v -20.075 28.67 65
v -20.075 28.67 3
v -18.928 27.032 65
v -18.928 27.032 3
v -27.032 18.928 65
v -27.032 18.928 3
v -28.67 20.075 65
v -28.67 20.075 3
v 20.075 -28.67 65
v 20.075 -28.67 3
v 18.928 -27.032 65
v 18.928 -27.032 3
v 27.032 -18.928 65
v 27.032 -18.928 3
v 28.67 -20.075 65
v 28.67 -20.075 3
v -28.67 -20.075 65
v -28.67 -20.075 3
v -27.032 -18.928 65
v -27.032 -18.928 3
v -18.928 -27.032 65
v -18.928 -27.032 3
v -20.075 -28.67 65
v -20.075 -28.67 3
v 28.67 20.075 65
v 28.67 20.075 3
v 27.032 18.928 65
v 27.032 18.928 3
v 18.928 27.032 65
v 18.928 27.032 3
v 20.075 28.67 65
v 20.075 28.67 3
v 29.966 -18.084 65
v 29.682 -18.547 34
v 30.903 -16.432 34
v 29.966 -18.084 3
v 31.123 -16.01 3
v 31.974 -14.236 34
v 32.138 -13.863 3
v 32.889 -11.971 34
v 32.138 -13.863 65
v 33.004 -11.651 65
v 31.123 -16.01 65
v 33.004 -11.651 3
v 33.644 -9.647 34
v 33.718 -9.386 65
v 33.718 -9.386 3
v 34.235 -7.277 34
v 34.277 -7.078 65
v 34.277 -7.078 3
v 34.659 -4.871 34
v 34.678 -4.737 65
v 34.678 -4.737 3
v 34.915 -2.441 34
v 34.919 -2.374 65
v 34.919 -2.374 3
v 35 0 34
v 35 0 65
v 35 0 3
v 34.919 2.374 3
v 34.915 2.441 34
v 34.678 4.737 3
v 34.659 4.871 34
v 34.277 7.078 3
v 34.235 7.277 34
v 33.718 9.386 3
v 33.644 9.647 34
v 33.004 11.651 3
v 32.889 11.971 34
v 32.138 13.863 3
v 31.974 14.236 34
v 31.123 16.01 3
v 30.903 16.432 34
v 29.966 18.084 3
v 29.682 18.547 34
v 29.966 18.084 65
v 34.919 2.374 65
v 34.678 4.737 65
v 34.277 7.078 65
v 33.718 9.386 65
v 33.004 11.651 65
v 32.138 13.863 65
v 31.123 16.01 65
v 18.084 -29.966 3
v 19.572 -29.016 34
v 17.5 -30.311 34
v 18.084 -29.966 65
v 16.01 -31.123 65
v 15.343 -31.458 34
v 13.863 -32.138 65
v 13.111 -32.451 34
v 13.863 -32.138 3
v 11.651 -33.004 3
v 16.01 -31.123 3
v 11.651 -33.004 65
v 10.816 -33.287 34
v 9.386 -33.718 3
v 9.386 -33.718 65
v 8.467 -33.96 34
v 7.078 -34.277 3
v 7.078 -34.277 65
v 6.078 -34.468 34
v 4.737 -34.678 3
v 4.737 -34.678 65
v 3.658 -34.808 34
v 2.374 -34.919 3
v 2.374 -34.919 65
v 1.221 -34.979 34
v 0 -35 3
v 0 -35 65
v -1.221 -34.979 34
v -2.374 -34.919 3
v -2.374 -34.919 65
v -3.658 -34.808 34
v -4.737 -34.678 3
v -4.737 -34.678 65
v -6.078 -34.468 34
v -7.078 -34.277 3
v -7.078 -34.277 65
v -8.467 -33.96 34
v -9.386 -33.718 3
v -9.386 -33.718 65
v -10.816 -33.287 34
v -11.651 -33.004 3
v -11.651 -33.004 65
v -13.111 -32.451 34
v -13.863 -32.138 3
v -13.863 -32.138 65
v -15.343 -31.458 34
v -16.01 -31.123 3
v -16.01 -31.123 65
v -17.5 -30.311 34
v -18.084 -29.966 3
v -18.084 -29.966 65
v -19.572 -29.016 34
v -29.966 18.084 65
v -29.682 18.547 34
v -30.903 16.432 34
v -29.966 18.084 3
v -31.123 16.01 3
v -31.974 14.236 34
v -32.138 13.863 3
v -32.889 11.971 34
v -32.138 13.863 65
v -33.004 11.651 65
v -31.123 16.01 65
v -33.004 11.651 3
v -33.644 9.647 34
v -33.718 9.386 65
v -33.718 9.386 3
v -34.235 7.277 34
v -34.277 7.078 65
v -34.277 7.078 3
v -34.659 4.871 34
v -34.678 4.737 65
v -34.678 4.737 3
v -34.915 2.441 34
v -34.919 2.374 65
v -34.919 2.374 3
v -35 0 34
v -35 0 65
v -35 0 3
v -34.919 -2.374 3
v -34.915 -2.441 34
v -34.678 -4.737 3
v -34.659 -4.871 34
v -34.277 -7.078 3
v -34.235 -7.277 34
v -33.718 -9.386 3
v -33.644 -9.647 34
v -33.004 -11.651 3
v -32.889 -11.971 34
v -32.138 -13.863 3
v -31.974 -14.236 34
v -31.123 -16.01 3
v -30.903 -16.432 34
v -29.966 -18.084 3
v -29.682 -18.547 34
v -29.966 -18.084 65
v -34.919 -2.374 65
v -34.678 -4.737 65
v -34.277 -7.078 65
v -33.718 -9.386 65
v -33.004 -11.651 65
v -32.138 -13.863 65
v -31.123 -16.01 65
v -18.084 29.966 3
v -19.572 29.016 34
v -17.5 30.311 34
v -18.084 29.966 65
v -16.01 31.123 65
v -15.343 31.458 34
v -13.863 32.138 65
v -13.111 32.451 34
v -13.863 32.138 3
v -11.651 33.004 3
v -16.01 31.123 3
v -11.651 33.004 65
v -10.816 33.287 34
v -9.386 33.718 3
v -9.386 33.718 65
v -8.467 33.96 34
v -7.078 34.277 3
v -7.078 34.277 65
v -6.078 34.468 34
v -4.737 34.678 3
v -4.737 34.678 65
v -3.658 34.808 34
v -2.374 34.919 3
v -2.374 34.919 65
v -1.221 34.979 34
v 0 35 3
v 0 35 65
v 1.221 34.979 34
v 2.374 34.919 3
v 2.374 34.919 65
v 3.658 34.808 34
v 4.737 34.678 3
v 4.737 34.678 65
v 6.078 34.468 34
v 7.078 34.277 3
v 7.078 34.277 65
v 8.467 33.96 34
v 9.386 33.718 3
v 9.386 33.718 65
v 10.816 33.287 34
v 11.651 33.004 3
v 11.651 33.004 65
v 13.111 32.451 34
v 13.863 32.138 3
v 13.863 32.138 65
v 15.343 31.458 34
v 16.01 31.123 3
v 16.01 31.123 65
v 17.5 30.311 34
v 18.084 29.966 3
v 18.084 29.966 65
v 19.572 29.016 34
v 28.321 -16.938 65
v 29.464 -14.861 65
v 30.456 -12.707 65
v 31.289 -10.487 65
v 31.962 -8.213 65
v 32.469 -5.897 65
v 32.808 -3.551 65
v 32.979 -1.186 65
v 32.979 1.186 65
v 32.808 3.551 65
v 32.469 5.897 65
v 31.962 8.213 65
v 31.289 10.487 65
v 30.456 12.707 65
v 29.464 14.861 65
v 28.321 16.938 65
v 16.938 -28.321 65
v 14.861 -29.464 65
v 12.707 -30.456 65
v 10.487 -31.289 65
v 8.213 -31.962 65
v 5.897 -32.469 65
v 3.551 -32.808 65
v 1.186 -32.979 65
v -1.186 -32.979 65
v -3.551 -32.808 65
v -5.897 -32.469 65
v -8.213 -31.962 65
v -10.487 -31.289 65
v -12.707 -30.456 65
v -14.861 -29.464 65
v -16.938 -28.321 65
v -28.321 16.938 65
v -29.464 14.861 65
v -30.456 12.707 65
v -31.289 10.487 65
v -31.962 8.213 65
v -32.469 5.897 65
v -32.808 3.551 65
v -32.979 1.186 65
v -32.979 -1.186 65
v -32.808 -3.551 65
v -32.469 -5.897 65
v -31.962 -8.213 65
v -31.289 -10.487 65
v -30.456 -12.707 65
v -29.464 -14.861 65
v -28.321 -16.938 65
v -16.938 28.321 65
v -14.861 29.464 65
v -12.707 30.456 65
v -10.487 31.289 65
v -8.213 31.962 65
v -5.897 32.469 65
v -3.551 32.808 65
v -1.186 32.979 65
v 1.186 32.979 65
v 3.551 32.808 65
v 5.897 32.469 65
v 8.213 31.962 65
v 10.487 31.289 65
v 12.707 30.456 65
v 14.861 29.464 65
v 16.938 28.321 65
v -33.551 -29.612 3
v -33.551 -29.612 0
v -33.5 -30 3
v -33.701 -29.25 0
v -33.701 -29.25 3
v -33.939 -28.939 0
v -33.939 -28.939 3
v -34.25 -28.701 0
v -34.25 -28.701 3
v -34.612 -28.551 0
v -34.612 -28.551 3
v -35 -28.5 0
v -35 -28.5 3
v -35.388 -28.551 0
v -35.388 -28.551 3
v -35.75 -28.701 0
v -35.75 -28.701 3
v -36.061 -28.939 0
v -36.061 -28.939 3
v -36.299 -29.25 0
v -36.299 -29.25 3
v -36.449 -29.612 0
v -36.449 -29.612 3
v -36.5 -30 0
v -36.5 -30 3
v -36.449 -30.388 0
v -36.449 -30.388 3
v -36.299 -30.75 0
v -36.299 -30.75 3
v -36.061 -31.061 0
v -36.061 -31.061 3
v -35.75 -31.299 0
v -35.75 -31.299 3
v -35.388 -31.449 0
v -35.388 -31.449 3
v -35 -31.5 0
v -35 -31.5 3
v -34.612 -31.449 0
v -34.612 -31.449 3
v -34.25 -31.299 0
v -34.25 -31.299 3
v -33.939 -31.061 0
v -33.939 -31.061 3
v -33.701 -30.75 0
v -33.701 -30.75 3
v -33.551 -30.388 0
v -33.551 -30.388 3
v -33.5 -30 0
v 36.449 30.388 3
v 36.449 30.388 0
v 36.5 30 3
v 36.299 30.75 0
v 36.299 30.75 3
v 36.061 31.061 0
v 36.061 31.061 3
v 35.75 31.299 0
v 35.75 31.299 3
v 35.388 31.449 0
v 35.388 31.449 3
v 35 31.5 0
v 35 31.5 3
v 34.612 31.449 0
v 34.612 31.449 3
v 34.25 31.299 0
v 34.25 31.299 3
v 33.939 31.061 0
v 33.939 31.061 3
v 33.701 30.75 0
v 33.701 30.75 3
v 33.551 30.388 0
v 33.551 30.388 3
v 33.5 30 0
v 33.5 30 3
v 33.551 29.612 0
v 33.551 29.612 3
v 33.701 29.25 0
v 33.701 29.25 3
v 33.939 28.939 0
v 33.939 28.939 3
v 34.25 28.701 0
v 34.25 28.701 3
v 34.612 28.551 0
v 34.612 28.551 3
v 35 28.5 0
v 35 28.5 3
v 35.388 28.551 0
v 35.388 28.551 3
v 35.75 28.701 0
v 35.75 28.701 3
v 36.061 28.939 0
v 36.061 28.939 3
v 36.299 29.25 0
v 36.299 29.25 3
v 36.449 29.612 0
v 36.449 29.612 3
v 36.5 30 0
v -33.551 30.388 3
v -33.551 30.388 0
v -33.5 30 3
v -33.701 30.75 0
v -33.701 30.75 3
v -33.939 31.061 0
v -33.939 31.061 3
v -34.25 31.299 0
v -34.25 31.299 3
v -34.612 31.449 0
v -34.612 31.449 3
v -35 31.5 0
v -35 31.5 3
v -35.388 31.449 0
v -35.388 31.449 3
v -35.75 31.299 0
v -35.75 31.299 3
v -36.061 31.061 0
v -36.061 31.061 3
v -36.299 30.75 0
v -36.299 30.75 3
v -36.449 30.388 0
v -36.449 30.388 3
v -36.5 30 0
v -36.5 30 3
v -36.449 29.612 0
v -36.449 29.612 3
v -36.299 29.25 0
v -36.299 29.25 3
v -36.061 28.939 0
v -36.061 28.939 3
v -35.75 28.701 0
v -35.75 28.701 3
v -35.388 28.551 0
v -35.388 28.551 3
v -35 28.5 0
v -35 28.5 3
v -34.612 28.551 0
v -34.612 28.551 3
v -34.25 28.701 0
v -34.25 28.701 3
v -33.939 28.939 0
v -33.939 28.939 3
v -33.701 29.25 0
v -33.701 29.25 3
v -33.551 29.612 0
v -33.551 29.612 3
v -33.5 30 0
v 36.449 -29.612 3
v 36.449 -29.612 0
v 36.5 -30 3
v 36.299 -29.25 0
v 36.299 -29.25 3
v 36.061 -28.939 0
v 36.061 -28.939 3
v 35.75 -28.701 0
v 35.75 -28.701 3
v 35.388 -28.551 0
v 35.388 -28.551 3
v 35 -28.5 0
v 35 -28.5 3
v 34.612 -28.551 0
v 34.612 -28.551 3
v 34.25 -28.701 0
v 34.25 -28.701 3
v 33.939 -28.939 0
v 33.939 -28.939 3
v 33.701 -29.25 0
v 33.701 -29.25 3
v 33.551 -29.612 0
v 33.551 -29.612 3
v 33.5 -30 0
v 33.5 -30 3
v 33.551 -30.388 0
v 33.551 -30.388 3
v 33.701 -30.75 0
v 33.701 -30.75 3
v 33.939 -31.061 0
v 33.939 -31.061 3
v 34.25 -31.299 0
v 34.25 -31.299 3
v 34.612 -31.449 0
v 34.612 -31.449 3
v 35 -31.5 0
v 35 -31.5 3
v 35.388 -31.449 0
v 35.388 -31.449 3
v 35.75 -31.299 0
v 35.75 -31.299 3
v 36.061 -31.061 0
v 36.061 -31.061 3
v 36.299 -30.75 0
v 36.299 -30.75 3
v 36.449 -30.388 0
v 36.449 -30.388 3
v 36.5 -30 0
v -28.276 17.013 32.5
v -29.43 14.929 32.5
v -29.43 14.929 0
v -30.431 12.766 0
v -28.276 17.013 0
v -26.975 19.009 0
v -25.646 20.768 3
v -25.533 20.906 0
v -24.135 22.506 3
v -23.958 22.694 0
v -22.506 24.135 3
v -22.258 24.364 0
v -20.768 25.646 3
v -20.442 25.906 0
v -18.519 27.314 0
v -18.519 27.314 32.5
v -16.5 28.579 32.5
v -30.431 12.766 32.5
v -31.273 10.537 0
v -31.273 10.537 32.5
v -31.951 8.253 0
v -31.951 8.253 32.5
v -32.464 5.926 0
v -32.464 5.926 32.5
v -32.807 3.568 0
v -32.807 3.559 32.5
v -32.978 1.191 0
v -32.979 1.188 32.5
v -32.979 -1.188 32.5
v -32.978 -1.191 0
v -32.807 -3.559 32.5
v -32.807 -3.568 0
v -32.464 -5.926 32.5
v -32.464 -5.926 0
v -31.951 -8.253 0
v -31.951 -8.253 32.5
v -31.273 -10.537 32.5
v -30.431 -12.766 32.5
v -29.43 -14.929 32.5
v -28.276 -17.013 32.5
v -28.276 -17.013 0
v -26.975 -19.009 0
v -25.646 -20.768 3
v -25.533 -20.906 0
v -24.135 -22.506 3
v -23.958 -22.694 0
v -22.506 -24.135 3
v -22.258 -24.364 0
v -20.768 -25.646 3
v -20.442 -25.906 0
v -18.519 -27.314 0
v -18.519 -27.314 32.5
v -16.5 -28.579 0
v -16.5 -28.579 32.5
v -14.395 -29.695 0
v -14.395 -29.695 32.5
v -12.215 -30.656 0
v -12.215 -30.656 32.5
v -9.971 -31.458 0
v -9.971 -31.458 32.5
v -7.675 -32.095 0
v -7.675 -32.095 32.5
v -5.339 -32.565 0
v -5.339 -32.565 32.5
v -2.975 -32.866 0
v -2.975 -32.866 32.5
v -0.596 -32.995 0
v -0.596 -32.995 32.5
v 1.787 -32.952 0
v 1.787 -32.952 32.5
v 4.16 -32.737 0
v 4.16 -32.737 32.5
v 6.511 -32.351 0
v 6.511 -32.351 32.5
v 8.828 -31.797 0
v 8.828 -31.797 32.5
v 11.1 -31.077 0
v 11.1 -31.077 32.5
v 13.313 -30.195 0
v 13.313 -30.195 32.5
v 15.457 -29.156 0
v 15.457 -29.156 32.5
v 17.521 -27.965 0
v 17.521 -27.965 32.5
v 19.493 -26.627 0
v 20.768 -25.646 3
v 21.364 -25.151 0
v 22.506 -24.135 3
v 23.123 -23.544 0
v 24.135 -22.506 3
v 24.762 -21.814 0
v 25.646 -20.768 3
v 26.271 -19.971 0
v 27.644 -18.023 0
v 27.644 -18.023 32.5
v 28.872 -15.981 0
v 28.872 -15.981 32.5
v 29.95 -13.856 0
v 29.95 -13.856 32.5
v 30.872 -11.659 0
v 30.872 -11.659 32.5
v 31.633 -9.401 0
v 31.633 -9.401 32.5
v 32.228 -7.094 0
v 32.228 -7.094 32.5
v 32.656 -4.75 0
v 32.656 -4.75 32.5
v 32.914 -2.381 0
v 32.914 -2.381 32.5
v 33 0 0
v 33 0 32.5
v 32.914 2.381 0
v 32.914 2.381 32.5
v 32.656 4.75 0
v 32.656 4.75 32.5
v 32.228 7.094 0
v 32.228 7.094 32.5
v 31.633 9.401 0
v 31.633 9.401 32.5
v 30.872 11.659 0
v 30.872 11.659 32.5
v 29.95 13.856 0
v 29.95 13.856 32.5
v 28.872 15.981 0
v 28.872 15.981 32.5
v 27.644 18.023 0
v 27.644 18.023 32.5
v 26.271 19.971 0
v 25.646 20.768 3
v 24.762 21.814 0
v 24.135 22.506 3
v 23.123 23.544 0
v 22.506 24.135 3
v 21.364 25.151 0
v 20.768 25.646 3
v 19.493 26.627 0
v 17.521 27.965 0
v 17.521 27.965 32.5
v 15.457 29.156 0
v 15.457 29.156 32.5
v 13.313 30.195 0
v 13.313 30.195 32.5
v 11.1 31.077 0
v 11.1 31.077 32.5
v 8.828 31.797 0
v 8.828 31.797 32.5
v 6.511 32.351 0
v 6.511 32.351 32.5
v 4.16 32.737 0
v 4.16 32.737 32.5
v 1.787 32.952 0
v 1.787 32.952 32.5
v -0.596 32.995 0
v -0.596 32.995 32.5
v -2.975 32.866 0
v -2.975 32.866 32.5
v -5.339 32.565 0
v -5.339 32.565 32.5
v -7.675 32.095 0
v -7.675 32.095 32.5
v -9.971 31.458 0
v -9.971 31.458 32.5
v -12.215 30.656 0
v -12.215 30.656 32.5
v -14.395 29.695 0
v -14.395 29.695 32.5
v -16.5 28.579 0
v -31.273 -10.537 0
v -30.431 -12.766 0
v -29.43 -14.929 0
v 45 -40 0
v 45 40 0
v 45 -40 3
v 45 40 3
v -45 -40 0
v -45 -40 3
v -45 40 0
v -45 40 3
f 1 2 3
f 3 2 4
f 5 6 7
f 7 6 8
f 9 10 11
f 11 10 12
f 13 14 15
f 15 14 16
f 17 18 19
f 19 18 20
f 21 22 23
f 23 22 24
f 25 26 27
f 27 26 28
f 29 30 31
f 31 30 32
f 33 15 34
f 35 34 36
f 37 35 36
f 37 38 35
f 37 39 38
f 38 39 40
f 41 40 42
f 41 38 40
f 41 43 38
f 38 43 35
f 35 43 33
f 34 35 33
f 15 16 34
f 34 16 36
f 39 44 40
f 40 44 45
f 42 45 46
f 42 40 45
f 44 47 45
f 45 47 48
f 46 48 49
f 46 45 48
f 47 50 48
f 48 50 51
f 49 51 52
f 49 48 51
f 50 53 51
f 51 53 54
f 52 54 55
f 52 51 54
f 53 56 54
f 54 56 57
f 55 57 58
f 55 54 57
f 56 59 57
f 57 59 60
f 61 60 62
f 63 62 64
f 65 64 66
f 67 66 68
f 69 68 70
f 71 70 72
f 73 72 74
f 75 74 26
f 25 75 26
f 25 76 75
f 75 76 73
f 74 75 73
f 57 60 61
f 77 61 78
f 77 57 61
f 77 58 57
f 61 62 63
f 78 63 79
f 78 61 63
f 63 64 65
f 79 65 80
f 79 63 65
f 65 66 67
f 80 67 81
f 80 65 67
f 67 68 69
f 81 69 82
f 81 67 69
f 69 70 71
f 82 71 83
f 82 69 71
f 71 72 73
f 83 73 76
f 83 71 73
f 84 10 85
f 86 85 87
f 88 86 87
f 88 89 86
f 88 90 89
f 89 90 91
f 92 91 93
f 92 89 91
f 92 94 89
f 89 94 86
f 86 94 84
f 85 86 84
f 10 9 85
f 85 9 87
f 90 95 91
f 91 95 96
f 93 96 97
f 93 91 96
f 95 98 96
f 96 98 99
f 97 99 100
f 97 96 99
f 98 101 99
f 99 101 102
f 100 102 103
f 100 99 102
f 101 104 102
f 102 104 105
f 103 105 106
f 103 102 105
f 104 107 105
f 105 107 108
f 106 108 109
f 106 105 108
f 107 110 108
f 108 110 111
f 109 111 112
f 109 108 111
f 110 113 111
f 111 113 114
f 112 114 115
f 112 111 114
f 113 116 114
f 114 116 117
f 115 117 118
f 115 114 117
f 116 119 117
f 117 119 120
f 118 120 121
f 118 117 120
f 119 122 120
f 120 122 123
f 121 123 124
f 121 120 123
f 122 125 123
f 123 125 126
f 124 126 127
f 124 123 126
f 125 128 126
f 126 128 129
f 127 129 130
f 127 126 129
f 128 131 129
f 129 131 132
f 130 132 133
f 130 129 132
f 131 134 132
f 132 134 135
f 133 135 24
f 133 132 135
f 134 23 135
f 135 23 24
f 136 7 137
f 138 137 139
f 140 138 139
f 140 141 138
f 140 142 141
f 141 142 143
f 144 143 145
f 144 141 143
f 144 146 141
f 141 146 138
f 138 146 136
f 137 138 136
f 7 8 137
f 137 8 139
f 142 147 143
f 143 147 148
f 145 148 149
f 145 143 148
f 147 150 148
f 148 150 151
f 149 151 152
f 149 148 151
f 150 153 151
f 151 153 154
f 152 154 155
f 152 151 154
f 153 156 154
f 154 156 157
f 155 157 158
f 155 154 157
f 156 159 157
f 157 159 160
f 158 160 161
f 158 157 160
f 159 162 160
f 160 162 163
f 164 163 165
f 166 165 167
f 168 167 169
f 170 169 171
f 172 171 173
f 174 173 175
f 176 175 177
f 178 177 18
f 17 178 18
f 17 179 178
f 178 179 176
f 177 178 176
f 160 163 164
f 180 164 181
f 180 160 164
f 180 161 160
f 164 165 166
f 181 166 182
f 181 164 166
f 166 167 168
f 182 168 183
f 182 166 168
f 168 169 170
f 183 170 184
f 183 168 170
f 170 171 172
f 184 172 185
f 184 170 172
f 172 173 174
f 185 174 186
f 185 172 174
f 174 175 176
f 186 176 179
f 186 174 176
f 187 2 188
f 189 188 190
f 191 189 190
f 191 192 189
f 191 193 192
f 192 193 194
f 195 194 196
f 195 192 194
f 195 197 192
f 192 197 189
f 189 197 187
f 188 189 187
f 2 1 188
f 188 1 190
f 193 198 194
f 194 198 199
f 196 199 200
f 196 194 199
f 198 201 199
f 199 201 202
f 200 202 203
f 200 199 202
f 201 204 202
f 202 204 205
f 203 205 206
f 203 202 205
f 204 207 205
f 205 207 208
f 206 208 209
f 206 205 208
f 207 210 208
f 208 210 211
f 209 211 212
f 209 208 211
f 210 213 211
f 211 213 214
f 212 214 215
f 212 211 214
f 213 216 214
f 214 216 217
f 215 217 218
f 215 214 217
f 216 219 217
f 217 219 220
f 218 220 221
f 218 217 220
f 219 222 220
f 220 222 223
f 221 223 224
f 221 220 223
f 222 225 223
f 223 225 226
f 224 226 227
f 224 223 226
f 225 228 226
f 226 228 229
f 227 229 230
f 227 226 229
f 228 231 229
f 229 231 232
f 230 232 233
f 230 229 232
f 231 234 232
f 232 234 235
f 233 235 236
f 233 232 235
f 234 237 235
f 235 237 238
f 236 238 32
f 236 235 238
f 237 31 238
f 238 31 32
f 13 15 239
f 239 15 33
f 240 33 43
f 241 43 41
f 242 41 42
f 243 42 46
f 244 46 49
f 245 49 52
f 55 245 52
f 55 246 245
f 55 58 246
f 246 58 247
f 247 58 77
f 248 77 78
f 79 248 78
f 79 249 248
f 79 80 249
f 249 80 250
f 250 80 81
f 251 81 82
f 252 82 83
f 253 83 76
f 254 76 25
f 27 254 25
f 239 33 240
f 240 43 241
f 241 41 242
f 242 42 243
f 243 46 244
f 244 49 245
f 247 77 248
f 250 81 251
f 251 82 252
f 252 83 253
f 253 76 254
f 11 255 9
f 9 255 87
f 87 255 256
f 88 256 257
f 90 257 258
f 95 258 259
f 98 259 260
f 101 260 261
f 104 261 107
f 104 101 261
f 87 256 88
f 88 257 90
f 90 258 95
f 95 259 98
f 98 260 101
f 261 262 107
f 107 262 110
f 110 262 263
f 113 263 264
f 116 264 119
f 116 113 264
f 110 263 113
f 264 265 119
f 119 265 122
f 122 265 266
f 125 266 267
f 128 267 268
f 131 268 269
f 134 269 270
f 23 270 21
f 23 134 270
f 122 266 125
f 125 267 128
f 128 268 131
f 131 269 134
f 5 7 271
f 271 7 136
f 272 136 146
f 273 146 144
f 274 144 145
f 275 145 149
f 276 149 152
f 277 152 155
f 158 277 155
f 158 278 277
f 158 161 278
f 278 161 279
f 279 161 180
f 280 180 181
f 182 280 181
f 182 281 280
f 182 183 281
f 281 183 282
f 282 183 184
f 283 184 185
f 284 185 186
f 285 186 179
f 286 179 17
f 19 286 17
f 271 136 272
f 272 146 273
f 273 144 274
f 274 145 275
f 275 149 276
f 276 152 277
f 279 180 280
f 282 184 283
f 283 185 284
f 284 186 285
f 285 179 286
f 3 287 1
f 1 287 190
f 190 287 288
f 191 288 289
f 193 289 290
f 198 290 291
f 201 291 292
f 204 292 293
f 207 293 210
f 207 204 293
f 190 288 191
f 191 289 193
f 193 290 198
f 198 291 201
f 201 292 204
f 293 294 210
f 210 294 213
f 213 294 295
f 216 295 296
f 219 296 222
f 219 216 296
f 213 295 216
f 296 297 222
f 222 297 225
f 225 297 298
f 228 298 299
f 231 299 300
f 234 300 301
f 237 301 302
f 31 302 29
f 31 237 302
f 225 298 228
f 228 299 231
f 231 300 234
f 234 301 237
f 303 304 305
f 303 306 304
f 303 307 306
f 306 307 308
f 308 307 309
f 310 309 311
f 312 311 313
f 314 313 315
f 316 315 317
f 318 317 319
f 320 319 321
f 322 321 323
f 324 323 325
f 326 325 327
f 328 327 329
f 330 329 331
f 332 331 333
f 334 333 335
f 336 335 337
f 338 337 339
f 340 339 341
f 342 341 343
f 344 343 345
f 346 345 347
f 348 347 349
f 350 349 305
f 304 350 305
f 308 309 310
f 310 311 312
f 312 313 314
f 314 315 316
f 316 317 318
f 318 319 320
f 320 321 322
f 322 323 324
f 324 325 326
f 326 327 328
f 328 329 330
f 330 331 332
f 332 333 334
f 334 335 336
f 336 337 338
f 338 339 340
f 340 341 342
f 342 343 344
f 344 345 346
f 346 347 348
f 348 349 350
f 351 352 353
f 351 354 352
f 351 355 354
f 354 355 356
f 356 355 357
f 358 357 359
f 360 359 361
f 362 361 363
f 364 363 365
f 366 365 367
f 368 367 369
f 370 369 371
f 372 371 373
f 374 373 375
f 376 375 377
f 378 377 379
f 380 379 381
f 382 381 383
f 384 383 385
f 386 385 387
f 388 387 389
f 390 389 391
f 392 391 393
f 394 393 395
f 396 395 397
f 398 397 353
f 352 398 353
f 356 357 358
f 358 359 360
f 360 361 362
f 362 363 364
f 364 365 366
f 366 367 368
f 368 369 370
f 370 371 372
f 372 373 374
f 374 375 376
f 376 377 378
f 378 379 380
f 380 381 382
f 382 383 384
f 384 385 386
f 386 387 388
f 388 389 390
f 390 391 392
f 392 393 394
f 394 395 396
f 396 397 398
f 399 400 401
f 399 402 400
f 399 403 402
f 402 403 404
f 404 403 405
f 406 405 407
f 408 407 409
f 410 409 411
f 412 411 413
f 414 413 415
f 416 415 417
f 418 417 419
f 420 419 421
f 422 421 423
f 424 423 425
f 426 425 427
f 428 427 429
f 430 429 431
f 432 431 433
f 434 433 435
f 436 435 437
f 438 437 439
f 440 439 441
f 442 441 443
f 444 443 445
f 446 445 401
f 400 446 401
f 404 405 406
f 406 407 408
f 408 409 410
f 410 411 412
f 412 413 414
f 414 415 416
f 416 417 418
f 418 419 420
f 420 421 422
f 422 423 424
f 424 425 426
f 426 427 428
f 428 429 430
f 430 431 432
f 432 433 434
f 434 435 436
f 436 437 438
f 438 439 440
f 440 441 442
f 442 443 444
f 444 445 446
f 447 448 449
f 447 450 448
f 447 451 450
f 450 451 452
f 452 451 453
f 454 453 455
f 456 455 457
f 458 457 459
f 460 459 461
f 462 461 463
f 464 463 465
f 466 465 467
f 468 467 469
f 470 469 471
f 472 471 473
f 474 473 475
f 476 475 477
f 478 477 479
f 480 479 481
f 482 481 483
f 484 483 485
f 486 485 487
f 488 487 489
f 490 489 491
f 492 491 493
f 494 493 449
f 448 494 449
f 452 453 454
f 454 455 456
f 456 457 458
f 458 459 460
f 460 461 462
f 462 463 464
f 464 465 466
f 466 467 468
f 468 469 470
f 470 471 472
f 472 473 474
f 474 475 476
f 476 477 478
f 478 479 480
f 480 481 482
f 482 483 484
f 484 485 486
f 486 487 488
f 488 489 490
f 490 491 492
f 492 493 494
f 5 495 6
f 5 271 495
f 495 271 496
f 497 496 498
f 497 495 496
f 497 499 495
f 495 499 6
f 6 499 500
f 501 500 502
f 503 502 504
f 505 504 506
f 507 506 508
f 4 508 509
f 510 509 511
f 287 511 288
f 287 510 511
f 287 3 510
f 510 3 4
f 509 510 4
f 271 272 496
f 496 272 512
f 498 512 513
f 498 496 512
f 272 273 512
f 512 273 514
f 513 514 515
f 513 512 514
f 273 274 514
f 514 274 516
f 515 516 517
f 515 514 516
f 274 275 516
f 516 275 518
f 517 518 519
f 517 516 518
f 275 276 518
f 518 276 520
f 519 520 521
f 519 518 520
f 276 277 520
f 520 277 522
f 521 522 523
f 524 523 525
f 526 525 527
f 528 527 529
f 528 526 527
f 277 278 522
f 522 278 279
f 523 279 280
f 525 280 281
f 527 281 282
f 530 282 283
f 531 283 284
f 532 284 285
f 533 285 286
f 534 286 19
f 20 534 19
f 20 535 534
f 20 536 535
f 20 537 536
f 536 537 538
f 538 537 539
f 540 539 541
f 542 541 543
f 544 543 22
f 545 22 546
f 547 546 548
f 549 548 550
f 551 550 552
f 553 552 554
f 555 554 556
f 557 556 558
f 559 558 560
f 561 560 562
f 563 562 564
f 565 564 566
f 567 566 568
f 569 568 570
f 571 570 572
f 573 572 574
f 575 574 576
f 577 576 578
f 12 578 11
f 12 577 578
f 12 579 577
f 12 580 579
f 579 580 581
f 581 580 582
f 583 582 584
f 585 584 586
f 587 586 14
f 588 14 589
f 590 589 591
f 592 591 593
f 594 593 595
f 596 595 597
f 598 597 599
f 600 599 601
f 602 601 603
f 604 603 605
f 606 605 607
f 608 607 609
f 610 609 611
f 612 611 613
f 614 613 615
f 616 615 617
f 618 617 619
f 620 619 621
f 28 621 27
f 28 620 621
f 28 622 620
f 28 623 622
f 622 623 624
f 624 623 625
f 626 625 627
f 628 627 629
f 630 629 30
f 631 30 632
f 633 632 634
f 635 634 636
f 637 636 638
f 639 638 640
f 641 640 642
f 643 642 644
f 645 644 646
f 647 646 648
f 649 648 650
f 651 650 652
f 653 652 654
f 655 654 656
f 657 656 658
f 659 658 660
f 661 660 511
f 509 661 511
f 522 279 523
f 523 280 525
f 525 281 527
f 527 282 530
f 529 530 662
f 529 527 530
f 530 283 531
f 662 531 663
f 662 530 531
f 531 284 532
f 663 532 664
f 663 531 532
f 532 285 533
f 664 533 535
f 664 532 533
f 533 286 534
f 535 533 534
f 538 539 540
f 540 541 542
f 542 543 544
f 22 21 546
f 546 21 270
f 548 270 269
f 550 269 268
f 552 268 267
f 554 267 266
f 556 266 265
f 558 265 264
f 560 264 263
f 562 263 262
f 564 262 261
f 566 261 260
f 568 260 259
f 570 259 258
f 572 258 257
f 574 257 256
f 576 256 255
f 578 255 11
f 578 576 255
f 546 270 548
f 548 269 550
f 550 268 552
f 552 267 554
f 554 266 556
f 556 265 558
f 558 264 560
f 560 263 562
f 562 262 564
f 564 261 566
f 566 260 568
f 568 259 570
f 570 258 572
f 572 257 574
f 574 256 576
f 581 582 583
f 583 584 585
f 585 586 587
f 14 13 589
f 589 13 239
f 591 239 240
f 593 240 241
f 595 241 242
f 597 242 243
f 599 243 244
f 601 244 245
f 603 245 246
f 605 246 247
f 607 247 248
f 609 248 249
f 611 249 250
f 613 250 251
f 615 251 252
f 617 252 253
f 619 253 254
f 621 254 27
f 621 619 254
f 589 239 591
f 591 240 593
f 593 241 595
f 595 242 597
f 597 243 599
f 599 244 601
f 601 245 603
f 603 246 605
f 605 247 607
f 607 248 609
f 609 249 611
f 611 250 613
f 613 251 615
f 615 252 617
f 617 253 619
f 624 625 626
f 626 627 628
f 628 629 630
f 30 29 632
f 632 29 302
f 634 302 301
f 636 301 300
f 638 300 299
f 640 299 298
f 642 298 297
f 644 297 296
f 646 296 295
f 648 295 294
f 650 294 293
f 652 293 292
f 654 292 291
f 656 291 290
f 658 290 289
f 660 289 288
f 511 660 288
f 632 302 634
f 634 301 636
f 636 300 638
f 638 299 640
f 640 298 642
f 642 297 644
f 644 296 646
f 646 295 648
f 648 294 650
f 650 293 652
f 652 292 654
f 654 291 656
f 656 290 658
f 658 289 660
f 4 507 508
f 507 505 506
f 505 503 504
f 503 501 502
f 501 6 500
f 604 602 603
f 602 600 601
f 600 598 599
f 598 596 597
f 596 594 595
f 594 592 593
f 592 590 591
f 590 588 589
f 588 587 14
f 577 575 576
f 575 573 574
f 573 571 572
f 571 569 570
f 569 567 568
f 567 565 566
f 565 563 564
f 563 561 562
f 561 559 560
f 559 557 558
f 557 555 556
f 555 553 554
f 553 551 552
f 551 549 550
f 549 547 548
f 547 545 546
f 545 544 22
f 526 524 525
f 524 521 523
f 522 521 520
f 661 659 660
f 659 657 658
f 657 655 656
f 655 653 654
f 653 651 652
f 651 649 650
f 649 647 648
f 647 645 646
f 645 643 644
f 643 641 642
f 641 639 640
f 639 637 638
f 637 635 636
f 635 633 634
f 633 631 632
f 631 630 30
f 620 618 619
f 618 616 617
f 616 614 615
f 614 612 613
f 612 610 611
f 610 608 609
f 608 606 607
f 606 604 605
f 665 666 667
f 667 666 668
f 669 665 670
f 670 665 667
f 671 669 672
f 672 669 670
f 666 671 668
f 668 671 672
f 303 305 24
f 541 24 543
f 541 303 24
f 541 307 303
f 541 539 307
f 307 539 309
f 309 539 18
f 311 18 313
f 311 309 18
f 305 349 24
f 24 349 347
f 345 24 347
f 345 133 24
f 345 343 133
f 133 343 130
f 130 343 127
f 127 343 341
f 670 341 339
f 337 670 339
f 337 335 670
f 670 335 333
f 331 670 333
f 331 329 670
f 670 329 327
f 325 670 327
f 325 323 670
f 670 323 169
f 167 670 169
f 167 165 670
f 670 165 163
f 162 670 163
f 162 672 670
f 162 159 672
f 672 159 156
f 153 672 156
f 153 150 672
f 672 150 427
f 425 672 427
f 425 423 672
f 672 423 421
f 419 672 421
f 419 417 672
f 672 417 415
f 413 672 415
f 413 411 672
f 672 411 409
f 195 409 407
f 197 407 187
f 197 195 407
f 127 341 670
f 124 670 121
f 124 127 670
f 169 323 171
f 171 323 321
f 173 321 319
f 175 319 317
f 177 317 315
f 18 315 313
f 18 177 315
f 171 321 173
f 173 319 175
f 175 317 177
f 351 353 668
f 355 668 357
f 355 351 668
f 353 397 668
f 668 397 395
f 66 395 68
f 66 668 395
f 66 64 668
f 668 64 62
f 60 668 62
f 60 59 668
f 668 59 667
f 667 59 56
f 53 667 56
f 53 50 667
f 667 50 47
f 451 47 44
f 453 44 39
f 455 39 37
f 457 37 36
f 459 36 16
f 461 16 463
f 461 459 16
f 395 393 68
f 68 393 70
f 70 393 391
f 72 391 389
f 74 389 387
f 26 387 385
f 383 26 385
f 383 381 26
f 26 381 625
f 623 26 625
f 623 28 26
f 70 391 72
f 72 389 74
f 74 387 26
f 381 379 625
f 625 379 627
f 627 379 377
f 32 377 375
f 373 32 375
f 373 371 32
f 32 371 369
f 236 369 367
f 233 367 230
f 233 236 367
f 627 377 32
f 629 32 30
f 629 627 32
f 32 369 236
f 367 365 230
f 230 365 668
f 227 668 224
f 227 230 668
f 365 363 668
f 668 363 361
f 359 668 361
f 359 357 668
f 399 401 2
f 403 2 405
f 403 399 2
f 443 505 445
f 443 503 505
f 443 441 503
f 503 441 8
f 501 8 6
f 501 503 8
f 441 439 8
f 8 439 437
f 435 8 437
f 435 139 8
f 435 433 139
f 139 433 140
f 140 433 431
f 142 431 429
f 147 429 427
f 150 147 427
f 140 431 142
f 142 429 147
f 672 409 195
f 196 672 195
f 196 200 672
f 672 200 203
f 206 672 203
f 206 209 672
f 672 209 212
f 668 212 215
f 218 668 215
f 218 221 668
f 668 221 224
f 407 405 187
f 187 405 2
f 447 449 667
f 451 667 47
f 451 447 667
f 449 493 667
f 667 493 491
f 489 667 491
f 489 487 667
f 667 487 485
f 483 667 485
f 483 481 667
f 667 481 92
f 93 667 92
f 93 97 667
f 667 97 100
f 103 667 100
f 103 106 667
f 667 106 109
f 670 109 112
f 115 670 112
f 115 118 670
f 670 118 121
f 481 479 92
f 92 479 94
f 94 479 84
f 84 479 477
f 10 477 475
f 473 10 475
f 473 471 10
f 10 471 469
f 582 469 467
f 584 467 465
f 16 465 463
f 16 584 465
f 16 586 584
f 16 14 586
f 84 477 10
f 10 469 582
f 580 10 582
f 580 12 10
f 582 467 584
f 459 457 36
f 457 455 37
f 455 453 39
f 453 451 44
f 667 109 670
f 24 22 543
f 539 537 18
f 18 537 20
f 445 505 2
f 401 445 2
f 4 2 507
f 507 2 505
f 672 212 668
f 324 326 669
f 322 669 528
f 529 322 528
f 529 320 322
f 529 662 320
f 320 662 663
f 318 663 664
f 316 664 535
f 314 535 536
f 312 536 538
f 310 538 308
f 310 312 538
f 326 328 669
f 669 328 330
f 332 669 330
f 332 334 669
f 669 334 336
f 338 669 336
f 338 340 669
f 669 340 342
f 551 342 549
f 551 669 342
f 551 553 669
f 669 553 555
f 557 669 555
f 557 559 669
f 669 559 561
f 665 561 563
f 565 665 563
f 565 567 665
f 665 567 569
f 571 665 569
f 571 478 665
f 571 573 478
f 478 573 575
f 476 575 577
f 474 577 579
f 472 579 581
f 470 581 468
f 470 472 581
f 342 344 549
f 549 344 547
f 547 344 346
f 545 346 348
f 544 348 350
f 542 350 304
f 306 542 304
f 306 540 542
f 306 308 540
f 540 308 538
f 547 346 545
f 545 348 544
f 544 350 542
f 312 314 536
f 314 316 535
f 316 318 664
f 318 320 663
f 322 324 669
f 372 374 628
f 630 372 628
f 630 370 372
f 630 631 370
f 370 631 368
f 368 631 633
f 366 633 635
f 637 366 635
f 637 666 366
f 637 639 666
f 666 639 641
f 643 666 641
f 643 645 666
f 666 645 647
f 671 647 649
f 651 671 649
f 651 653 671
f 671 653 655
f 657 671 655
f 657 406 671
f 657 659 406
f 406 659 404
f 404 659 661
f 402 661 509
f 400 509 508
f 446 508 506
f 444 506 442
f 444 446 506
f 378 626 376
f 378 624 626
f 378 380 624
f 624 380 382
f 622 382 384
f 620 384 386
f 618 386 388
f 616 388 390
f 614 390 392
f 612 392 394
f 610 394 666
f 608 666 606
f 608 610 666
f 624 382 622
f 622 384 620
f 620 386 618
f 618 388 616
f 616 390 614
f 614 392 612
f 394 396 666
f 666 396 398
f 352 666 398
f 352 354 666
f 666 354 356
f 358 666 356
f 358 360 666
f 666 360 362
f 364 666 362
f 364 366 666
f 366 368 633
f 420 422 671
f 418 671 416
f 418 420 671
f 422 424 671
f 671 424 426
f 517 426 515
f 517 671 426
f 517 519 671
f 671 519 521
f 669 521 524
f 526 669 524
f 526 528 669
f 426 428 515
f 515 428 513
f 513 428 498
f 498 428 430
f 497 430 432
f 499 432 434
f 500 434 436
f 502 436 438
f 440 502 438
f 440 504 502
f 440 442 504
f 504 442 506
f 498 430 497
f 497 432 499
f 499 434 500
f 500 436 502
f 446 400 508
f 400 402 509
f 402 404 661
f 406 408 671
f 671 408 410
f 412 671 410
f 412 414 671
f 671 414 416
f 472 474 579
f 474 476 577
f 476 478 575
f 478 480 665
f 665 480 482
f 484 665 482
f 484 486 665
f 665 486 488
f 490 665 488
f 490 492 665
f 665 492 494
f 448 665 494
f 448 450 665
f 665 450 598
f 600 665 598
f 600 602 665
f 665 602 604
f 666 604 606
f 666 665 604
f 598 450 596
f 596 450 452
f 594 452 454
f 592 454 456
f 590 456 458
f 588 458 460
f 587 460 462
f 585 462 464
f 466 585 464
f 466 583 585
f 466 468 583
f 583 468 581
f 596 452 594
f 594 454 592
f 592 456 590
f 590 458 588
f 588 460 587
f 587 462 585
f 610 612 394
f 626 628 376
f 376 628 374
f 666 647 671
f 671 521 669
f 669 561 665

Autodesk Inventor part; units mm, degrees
ref_plane "YZ Plane" through (0, 0, 0) normal (1, 0, 0) x (0, 1, 0)
ref_plane "XZ Plane" through (0, 0, 0) normal (0, 1, 0) x (-1, 0, 0)
ref_plane "XY Plane" through (0, 0, 0) normal (0, 0, 1) x (1, 0, 0)
sketch "スケッチ1" plane through (0, 0, 0) normal (0, 0, 1) x (1, 0, 0)
  circle A0 centre (0, 0) radius 35
  circle A1 centre (0, 0) radius 33
  line L0 (-45, 40) -> (45, 40)
  line L1 (45, 40) -> (45, -40)
  line L2 (45, -40) -> (-45, -40)
  line L3 (-45, -40) -> (-45, 40)
  line L4 (-45, 40) -> (45, -40) construction
  line L5 (45, 40) -> (-45, -40) construction
  dimension "d0" = 70
  dimension "d1" = 66
  dimension "d2" = 90
  dimension "d3" = 80
extrude "押し出し1" add sketch "スケッチ1" along normal blind 3 contours L0 L1 L2 L3
sketch "スケッチ2" plane through (0, 0, 3) normal (0, 0, 1) x (1, 0, 0)
  circle A0 centre (0, 0) radius 35 projected
  circle A1 centre (0, 0) radius 35
  circle A2 centre (0, 0) radius 33
  dimension "d6" = 66
extrude "押し出し2" add sketch "スケッチ2" along normal blind 3 and the other way blind 3
sketch "スケッチ3" plane through (0, 0, 6) normal (0, 0, 1) x (1, 0, 0)
  circle A0 centre (0, 0) radius 33 projected
  circle A1 centre (0, 0) radius 35 projected
extrude "押し出し3" add sketch "スケッチ3" along normal blind 59
sketch "スケッチ4" plane through (0, 0, 65) normal (0, 0, 1) x (1, 0, 0)
  circle A0 centre (0, 0) radius 33 projected
  circle A1 centre (0, 0) radius 35 projected
sketch "スケッチ5" plane through (0, 0, 0) normal (0, 0, -1) x (-1, 0, 0)
  line L0 (-45, 40) -> (-35, 40)
  line L1 (-35, 40) -> (-35, 30)
  line L2 (-35, 30) -> (-45, 30)
  line L3 (-45, 30) -> (-45, 40)
  line L4 (-45, -40) -> (-35, -40)
  line L5 (-35, -40) -> (-35, -30)
  line L6 (-35, -30) -> (-45, -30)
  line L7 (-45, -30) -> (-45, -40)
  line L8 (45, -40) -> (35, -40)
  line L9 (35, -40) -> (35, -30)
  line L10 (35, -30) -> (45, -30)
  line L11 (45, -30) -> (45, -40)
  line L12 (45, 40) -> (35, 40)
  line L13 (35, 40) -> (35, 30)
  line L14 (35, 30) -> (45, 30)
  line L15 (45, 30) -> (45, 40)
  dimension "d13" = 10
  dimension "d14" = 10
  dimension "d15" = 10
  dimension "d16" = 10
  dimension "d17" = 10
  dimension "d18" = 10
  dimension "d19" = 10
hole "穴1" at (35, 30, 0) at (-35, 30, 0) at (-35, -30, 0) at (35, -30, 0) direction (0, 0, 1) diameter 3 depth 8 tip angle 118
sketch "スケッチ6" plane through (0, 0, 65) normal (0, 0, 1) x (1, 0, 0)
  circle A0 centre (0, 0) radius 33 projected
  circle A1 centre (0, 0) radius 35 projected
  line L0 (0, 0) -> (28.6703, -20.0752)
  line L1 (0, 0) -> (35, 0) construction
  line L2 (0, 0) -> (20.0752, -28.6703)
  line L3 (0, 0) -> (35, 0) construction
  line L4 (0, 0) -> (-20.0752, -28.6703)
  line L5 (0, 0) -> (-28.6703, -20.0752)
  line L6 (0, 0) -> (-28.6703, 20.0752)
  line L7 (0, 0) -> (-20.0752, 28.6703)
  line L8 (0, 0) -> (20.0752, 28.6703)
  line L9 (0, 0) -> (28.6703, 20.0752)
  arc A2 (-20.0752, 28.6703) -> (-28.6703, 20.0752) centre (0, 0) ccw
  arc A3 (-18.928, 27.032) -> (-27.032, 18.928) centre (0, 0) ccw
  arc A4 (-27.032, -18.928) -> (-18.928, -27.032) centre (0, 0) ccw
  arc A5 (-28.6703, -20.0752) -> (-20.0752, -28.6703) centre (0, 0) ccw
  arc A6 (18.928, -27.032) -> (27.032, -18.928) centre (0, 0) ccw
  arc A7 (27.032, 18.928) -> (18.928, 27.032) centre (0, 0) ccw
  arc A8 (20.0752, -28.6703) -> (28.6703, -20.0752) centre (0, 0) ccw
  arc A9 (28.6703, 20.0752) -> (20.0752, 28.6703) centre (0, 0) ccw
  dimension "d27" = 35
  dimension "d28" = 55
  dimension "d31" = 360
extrude "押し出し4" cut sketch "スケッチ6" against normal blind 62 contours A0 L8 A1 L9 | L0 A1 L2 A0 | A0 L6 A1 L7 | L4 A1 L5 A0
properties part number "知能ロボコン発射口ver2.1"
